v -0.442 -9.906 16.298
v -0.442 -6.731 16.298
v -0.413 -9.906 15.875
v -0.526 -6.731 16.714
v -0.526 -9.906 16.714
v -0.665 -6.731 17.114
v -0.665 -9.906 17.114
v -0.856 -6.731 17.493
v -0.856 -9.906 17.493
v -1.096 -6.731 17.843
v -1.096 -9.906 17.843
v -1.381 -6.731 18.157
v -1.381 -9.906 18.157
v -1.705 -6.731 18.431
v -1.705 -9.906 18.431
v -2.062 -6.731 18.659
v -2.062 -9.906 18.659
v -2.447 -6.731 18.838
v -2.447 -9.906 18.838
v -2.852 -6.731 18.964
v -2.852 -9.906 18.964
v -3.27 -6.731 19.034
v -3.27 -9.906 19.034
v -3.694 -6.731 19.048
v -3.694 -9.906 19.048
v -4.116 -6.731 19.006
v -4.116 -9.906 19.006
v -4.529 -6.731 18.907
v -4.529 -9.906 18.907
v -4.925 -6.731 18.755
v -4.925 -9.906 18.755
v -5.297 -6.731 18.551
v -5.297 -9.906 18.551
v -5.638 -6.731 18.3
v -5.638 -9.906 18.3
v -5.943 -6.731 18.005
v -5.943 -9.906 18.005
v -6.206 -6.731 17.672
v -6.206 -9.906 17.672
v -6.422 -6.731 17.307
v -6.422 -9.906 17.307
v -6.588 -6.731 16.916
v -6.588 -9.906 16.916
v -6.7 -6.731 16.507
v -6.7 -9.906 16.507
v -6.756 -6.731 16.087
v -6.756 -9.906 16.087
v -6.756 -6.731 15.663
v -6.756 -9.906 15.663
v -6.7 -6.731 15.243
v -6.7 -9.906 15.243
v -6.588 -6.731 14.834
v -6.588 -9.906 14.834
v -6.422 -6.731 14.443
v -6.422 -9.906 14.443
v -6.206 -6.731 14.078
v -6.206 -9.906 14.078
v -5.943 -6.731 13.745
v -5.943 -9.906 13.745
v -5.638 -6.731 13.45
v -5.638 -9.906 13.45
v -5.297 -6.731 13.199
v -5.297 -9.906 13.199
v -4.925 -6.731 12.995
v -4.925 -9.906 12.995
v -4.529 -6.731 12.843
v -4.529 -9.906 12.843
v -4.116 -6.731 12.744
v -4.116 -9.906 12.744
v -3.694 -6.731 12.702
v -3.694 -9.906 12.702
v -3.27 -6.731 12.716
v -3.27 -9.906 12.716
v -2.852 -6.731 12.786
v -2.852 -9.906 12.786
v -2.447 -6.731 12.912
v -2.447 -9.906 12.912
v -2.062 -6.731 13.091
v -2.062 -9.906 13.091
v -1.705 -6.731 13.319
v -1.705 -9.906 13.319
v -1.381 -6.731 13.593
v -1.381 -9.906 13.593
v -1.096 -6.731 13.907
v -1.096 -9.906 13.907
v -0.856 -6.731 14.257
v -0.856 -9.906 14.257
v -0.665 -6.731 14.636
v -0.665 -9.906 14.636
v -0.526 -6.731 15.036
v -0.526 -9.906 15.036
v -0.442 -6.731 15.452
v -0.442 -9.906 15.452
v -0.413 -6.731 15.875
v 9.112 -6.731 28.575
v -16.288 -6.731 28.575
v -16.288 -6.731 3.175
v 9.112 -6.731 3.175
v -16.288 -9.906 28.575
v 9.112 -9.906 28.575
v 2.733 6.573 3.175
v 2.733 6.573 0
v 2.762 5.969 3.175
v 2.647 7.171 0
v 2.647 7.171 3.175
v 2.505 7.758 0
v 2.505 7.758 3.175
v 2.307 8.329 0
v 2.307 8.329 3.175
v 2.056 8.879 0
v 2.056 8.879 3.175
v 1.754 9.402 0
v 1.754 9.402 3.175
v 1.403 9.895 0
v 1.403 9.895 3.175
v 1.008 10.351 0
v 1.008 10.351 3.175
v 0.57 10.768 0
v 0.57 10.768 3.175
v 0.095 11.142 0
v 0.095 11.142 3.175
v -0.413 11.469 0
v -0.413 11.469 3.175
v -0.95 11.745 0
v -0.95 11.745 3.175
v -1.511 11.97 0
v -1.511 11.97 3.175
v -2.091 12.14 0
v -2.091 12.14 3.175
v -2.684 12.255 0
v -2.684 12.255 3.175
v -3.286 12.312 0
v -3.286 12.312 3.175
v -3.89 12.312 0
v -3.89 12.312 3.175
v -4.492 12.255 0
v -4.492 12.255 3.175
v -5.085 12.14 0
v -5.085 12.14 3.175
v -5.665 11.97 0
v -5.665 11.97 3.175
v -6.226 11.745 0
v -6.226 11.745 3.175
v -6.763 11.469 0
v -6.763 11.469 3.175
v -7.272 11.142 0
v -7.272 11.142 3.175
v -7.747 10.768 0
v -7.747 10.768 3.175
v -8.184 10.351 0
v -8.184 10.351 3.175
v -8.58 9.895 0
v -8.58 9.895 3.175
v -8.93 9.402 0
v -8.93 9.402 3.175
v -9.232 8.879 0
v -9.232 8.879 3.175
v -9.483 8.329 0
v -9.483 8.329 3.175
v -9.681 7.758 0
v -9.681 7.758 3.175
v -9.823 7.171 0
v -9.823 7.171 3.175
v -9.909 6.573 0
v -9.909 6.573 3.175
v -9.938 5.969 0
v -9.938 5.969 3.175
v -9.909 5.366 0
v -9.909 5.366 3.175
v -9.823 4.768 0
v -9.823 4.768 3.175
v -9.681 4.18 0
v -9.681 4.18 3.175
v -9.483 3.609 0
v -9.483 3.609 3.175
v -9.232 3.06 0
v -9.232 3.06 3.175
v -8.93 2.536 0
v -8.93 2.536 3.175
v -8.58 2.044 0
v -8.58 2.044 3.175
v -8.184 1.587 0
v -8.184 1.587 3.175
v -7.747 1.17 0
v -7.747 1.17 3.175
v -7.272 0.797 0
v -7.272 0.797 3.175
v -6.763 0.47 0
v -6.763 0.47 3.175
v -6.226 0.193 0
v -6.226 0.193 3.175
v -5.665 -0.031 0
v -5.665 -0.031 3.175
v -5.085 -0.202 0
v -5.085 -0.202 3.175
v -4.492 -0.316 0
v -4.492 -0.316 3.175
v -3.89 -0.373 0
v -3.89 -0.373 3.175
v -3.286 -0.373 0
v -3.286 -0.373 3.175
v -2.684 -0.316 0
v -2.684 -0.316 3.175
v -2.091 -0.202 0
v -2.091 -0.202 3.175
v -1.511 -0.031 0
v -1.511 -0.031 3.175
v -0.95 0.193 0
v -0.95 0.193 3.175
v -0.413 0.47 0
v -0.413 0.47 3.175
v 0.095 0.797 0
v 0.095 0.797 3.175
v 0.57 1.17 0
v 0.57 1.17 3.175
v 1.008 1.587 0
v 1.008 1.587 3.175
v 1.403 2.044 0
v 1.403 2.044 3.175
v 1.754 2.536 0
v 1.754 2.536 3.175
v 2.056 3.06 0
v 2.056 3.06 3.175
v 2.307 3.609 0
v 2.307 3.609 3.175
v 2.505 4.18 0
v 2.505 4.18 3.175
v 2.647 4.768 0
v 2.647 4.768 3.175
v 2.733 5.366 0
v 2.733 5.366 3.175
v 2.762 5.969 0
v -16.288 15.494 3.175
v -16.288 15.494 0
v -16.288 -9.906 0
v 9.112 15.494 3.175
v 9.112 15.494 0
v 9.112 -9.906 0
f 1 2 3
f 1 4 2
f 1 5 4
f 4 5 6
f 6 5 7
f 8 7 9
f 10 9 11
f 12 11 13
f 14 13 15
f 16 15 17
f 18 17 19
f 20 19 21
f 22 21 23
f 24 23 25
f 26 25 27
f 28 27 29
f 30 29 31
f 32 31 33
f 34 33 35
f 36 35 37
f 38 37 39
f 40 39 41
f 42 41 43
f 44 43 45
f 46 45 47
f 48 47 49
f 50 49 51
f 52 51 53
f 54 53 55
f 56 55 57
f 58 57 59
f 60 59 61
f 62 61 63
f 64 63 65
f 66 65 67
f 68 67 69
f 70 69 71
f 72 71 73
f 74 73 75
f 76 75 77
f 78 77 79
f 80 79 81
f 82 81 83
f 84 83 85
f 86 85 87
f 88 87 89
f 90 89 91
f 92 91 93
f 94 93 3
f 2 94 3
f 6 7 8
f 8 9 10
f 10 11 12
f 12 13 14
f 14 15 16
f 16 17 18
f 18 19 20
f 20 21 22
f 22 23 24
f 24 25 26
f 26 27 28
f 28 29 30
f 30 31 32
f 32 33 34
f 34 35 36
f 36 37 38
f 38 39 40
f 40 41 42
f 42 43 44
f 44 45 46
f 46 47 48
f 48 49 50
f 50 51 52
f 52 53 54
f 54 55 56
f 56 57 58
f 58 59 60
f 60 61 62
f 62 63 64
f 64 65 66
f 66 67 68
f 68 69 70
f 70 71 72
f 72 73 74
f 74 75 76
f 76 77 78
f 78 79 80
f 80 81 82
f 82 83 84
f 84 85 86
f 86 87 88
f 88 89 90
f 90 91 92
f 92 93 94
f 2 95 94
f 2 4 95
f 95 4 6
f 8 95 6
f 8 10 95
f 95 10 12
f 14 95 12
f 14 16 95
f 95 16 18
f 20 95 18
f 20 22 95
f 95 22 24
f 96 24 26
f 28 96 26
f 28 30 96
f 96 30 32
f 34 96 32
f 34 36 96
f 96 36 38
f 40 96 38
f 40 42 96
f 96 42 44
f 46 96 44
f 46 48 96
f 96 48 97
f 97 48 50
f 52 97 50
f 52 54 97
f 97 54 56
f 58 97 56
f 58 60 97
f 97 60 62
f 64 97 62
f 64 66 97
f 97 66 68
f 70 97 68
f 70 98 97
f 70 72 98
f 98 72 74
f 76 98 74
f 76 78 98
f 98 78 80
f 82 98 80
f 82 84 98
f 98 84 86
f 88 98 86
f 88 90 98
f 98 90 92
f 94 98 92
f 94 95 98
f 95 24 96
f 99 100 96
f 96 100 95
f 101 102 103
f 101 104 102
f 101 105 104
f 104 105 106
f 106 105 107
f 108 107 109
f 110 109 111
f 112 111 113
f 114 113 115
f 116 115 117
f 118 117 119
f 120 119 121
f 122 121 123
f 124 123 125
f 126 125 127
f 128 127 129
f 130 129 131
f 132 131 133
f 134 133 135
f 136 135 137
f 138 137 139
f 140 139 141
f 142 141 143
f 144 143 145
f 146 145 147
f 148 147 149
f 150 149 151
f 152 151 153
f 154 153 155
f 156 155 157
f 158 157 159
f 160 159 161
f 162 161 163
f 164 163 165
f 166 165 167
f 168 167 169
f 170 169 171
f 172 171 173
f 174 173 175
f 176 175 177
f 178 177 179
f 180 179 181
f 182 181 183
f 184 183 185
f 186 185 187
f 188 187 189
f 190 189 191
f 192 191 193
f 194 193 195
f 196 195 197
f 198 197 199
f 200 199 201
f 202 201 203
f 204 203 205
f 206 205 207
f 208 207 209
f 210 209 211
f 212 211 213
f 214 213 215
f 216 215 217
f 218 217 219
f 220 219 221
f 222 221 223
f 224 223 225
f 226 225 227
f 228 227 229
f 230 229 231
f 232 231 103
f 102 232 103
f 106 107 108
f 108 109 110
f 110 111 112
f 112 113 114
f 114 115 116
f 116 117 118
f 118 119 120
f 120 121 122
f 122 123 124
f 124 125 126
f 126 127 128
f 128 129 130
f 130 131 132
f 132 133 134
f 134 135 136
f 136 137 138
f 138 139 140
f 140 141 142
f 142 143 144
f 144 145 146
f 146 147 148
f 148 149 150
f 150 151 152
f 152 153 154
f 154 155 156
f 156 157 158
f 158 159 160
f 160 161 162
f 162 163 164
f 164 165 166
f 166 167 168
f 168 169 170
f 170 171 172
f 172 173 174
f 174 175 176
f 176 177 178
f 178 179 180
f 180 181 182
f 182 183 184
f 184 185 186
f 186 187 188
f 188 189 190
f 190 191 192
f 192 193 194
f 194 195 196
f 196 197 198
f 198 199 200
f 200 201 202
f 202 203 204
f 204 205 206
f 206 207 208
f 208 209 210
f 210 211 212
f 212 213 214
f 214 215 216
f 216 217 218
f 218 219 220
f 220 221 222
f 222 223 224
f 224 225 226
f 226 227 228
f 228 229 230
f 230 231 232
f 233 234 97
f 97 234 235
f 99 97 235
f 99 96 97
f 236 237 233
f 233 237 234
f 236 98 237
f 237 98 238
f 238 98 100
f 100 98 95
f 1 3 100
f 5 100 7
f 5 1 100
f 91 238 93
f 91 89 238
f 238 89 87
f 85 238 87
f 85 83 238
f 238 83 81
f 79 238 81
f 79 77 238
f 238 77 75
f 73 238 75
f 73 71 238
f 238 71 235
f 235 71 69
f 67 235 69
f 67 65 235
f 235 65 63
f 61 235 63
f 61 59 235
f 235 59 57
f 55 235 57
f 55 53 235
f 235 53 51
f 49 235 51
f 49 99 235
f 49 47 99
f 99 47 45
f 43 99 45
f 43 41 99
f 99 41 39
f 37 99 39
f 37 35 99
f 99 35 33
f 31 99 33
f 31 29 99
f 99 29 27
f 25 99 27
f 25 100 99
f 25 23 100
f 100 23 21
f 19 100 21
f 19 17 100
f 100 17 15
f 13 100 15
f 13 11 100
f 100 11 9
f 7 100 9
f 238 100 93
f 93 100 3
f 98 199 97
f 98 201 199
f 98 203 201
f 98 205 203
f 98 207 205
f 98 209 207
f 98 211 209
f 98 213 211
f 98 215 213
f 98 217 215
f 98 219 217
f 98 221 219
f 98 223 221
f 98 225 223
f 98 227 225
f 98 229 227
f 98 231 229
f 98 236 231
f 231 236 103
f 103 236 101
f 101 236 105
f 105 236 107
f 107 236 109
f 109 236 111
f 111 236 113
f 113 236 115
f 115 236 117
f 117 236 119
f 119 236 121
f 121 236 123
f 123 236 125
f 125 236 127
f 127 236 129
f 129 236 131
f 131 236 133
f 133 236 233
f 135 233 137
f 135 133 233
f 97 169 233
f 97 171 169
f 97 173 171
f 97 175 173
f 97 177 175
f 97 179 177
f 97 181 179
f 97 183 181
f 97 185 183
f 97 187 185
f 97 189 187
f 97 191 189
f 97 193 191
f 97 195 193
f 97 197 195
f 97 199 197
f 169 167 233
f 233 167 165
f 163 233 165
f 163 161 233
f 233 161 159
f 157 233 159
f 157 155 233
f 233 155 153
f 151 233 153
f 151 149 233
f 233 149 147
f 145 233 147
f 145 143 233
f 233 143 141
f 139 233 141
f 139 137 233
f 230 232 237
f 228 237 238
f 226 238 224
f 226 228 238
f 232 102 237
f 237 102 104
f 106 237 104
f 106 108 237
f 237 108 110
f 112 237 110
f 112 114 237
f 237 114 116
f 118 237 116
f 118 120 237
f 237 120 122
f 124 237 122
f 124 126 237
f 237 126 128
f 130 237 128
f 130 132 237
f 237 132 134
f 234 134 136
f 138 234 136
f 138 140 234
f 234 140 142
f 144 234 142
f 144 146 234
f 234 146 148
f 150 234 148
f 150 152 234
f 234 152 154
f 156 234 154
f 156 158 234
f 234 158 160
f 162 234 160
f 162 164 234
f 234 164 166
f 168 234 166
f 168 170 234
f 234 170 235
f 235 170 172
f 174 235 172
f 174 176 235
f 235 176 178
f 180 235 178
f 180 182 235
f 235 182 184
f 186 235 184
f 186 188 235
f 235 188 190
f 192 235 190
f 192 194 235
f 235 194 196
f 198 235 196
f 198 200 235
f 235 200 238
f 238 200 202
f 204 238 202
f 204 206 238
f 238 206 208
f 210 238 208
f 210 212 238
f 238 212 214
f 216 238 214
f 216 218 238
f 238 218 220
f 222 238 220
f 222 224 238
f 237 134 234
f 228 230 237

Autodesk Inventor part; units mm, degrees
ref_plane "YZ Plane" through (0, 0, 0) normal (1, 0, 0) x (0, 1, 0)
ref_plane "XZ Plane" through (0, 0, 0) normal (0, 1, 0) x (-1, 0, 0)
ref_plane "XY Plane" through (0, 0, 0) normal (0, 0, 1) x (1, 0, 0)
sketch "Sketch1" plane through (0, 0, 0) normal (0, 0, 1) x (1, 0, 0)
  line L0 (9.1118, -9.9057) -> (-16.2882, -9.9057)
  line L1 (-16.2882, -9.9057) -> (-16.2882, 15.4943)
  line L2 (-16.2882, 15.4943) -> (9.1118, 15.4943)
  line L3 (9.1118, 15.4943) -> (9.1118, -9.9057)
  circle A0 centre (-3.5882, 5.9693) radius 6.35
  point P0 (0, 0)
  dimension "d0" = 25.4
  dimension "d1" = 25.4
  dimension "d2" = 12.7
  dimension "d16" = 9.525
extrude "Extrusion1" add sketch "Sketch1" along normal blind 3.175
sketch "Sketch2" plane through (0, 0, 3.175) normal (0, 0, 1) x (1, 0, 0)
  line L0 (9.1118, 15.4943) -> (9.1118, -9.9057) projected
  line L1 (-16.2882, -9.9057) -> (9.1118, -9.9057)
  line L2 (9.1118, -9.9057) -> (9.1118, -6.7307)
  line L3 (9.1118, -6.7307) -> (-16.2882, -6.7307)
  line L4 (-16.2882, -6.7307) -> (-16.2882, -9.9057)
  point P0 (0, 0)
  dimension "d5" = 3.175
extrude "Extrusion2" add sketch "Sketch2" along normal blind 25.4
sketch "Sketch3" plane through (-16.2882, -6.7307, 3.175) normal (0, 1, 0) x (1, 0, 0)
  line L0 (0, -25.4) -> (25.4, -25.4) projected
  line L1 (25.4, 0) -> (25.4, -25.4) projected
  circle A0 centre (12.7, -12.7) radius 3.175
  point P0 (16.2882, 3.175)
  dimension "d9" = 6.35
  dimension "d11" = 12.7
  dimension "d13" = 12.7
extrude "Extrusion3" cut sketch "Sketch3" against normal blind 25.4
properties part number "Piston Mounting Bracket"
